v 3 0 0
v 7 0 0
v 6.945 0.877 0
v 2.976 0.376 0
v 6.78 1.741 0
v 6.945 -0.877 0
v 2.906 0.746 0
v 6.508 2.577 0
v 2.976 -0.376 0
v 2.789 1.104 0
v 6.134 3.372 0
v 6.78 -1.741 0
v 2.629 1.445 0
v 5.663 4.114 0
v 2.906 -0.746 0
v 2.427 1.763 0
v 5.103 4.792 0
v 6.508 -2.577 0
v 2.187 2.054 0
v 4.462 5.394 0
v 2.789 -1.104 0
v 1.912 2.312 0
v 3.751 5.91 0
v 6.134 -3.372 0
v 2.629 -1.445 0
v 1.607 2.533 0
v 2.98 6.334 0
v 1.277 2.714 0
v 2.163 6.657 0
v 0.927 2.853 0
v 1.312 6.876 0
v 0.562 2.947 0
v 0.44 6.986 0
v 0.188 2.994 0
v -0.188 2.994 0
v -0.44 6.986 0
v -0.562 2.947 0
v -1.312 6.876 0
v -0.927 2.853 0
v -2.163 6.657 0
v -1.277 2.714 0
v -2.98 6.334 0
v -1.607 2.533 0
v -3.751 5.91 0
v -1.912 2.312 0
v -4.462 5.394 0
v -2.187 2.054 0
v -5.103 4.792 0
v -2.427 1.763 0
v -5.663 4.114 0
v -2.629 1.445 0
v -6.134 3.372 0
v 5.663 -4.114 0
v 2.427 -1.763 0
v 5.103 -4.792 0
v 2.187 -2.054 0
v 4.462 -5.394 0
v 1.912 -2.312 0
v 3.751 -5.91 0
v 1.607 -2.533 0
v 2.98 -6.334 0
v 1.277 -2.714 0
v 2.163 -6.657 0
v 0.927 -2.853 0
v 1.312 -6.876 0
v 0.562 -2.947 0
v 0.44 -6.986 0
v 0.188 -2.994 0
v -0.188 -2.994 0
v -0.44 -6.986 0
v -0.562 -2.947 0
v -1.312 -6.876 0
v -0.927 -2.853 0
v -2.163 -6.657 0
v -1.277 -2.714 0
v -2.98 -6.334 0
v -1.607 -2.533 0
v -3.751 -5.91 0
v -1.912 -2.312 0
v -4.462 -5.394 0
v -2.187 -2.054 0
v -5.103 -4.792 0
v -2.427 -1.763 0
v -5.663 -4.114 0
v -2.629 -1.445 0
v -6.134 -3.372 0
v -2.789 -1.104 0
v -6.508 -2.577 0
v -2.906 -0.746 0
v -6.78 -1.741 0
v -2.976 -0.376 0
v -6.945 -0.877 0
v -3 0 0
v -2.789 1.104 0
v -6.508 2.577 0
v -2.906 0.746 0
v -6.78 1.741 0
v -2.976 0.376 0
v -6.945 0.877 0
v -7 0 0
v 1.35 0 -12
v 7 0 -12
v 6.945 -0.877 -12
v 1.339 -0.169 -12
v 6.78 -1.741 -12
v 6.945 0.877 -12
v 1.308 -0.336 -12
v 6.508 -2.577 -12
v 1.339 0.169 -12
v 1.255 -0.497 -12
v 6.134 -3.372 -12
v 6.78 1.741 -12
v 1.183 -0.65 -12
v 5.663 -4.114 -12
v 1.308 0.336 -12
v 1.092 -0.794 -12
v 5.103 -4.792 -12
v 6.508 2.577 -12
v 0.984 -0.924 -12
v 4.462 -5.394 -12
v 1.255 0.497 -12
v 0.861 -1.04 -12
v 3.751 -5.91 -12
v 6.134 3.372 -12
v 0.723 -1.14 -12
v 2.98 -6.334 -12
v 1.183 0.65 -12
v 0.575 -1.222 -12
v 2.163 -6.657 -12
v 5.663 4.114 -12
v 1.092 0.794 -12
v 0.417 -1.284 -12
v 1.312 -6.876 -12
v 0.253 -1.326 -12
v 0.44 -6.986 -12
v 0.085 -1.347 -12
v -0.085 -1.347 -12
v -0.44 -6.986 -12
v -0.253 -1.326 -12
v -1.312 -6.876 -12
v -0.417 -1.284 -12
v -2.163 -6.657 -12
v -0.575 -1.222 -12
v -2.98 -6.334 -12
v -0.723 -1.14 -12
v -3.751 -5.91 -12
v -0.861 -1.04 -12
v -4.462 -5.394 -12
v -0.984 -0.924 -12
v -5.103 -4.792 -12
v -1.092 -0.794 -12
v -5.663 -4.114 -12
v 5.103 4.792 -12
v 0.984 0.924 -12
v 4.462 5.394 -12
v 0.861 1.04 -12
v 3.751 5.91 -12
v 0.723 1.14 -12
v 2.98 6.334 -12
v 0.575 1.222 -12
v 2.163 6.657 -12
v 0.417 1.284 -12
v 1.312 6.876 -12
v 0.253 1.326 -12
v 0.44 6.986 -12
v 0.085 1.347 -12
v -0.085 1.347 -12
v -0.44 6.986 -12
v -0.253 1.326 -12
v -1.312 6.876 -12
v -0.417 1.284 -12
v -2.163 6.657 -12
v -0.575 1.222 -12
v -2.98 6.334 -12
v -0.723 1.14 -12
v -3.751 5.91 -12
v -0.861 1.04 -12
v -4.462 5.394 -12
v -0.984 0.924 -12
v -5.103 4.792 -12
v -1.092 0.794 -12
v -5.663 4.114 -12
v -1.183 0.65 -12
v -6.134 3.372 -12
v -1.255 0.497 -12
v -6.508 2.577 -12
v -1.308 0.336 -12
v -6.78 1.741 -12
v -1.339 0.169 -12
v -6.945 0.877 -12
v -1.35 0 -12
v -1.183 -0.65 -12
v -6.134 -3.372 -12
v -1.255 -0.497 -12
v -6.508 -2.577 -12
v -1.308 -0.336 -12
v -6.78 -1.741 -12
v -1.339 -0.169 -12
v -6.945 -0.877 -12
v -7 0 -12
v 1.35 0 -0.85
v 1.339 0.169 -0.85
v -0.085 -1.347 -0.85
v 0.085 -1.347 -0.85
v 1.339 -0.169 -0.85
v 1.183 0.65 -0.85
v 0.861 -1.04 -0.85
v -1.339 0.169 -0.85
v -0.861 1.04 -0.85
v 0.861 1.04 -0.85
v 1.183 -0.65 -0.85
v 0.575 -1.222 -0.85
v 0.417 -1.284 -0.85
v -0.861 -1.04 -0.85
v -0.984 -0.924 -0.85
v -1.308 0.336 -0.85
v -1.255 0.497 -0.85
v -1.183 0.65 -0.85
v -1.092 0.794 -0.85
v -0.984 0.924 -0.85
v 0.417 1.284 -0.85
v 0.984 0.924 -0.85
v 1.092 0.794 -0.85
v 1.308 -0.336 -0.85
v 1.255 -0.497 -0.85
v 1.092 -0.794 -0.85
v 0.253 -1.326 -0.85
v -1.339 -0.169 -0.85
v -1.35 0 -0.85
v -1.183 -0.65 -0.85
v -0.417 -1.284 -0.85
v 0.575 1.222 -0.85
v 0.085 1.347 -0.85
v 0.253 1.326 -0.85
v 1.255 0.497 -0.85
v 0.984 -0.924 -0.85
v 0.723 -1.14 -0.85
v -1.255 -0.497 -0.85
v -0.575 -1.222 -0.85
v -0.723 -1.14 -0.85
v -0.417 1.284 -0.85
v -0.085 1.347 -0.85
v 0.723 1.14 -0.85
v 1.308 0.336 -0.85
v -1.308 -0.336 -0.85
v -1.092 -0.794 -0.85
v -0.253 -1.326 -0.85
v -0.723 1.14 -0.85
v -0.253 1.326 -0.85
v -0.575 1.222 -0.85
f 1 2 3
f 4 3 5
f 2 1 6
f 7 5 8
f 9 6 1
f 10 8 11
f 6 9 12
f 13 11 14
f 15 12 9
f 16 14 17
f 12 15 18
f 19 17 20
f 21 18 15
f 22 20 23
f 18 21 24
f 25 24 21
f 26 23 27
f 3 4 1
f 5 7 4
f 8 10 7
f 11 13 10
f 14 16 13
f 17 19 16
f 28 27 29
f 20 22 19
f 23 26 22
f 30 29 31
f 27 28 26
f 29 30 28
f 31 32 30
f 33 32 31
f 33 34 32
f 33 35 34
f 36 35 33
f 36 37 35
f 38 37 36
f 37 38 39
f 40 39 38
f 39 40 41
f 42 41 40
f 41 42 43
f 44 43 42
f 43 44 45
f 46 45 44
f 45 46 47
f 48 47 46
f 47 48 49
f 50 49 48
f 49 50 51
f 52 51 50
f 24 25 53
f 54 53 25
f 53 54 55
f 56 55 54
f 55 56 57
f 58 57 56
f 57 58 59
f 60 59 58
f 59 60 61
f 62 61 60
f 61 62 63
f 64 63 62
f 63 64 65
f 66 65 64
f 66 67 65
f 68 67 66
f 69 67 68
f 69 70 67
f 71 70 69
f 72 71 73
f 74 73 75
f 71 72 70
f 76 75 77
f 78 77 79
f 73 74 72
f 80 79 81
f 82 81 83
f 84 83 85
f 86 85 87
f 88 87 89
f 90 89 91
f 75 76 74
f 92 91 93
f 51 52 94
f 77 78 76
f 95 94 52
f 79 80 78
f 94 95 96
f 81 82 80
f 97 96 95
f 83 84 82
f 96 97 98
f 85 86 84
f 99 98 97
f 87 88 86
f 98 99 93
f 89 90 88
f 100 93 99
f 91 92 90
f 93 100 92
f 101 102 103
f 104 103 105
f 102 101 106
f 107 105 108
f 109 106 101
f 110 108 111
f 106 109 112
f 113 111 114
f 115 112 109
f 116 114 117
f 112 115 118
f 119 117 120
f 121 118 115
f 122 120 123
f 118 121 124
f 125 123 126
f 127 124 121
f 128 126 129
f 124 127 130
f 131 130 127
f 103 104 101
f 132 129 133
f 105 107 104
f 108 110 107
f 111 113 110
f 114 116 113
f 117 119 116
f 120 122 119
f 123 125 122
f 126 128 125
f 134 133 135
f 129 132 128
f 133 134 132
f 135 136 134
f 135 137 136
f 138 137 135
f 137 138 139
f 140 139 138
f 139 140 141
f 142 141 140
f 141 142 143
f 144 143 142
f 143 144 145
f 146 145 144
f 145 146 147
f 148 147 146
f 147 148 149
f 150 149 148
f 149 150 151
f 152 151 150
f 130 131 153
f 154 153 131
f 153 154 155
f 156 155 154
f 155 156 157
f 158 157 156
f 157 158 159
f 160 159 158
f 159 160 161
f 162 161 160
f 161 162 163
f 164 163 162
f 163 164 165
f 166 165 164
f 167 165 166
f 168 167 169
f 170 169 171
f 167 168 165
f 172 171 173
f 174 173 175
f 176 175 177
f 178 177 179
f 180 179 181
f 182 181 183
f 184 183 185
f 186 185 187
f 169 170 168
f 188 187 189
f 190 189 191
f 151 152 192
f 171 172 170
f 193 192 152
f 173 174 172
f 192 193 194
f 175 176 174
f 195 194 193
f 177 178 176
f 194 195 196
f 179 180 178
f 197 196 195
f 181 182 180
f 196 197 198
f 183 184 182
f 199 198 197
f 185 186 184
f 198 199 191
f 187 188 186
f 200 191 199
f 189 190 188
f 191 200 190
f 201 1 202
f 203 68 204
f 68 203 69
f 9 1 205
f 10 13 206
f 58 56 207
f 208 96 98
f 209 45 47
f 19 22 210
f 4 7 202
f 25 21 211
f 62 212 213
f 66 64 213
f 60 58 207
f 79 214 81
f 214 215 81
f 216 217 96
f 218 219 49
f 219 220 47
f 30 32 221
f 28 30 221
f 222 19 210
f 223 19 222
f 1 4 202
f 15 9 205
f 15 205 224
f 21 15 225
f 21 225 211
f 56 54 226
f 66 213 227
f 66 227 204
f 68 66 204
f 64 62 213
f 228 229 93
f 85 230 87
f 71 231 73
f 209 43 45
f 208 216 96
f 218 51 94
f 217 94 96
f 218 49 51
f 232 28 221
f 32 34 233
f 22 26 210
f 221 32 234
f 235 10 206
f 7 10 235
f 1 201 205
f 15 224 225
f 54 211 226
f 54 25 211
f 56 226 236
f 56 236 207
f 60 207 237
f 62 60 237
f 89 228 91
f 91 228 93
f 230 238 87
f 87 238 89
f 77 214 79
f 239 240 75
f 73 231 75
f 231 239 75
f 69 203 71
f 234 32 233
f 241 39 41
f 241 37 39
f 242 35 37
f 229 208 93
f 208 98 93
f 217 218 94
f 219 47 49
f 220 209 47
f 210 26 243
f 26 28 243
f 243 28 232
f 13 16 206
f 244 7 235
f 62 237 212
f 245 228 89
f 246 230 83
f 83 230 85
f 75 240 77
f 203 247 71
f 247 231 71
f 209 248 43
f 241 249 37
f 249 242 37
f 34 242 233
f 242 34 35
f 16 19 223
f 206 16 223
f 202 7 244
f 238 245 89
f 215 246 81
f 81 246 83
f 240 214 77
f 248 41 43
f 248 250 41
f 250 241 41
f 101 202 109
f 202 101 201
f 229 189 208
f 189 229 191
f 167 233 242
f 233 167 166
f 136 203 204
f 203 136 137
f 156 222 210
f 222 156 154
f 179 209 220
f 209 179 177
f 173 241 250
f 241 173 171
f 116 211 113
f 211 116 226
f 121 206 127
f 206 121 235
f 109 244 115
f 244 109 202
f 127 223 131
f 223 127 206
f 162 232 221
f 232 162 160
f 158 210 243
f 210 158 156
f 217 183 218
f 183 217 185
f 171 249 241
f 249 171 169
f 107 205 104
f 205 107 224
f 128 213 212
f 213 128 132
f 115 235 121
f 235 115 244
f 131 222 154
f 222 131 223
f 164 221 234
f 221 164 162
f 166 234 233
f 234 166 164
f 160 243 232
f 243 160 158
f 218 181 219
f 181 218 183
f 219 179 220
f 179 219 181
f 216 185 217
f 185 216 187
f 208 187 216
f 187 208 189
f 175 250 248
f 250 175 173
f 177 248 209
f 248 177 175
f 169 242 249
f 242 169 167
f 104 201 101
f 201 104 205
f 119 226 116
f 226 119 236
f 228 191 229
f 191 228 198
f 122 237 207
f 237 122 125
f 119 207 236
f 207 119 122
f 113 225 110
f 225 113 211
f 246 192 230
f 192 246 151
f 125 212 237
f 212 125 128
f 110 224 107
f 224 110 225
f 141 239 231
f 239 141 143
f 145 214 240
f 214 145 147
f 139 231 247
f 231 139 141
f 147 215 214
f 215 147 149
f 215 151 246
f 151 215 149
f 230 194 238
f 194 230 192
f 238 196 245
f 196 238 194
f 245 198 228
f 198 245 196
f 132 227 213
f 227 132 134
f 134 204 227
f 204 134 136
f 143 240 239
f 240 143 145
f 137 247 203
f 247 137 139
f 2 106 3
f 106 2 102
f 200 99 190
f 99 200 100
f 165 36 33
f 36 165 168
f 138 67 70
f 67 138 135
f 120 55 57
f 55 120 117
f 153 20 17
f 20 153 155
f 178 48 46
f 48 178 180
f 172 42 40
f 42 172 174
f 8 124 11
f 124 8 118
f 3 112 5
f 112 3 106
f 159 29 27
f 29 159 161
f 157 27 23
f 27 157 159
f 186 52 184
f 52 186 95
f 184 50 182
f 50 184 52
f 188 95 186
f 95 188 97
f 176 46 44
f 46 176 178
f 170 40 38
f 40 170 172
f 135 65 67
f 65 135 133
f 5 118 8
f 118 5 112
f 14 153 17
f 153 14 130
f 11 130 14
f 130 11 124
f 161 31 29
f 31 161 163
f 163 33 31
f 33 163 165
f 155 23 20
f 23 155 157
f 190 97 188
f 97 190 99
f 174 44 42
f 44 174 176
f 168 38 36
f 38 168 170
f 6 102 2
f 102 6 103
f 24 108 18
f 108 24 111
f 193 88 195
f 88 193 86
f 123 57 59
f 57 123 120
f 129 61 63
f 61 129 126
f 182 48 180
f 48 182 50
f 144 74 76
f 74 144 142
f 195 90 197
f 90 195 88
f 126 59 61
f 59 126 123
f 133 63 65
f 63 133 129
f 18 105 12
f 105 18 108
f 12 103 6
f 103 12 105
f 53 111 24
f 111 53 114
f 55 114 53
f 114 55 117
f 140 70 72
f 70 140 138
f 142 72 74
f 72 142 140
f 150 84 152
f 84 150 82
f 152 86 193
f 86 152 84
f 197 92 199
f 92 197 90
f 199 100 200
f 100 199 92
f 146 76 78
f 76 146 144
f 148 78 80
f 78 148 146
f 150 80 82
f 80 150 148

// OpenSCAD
$fn = 50;


difference() {
	union() {
		translate(v = [0, 0, -12.0000000000]) {
			cylinder(h = 12, r = 7.0000000000);
		}
	}
	union() {
		translate(v = [0, 0, 0]) {
			rotate(a = [0, 0, 0]) {
				difference() {
					union() {
						translate(v = [0, 0, -12.0000000000]) {
							cylinder(h = 12, r = 1.0000000000);
						}
						translate(v = [0, 0, -0.8500000000]) {
							cylinder(h = 0.8500000000, r1 = 1.3500000000, r2 = 3.0000000000);
						}
						translate(v = [0, 0, -12.0000000000]) {
							cylinder(h = 12, r = 1.3500000000);
						}
						translate(v = [0, 0, -12.0000000000]) {
							cylinder(h = 12, r = 1.0000000000);
						}
					}
					union();
				}
			}
		}
	}
}
